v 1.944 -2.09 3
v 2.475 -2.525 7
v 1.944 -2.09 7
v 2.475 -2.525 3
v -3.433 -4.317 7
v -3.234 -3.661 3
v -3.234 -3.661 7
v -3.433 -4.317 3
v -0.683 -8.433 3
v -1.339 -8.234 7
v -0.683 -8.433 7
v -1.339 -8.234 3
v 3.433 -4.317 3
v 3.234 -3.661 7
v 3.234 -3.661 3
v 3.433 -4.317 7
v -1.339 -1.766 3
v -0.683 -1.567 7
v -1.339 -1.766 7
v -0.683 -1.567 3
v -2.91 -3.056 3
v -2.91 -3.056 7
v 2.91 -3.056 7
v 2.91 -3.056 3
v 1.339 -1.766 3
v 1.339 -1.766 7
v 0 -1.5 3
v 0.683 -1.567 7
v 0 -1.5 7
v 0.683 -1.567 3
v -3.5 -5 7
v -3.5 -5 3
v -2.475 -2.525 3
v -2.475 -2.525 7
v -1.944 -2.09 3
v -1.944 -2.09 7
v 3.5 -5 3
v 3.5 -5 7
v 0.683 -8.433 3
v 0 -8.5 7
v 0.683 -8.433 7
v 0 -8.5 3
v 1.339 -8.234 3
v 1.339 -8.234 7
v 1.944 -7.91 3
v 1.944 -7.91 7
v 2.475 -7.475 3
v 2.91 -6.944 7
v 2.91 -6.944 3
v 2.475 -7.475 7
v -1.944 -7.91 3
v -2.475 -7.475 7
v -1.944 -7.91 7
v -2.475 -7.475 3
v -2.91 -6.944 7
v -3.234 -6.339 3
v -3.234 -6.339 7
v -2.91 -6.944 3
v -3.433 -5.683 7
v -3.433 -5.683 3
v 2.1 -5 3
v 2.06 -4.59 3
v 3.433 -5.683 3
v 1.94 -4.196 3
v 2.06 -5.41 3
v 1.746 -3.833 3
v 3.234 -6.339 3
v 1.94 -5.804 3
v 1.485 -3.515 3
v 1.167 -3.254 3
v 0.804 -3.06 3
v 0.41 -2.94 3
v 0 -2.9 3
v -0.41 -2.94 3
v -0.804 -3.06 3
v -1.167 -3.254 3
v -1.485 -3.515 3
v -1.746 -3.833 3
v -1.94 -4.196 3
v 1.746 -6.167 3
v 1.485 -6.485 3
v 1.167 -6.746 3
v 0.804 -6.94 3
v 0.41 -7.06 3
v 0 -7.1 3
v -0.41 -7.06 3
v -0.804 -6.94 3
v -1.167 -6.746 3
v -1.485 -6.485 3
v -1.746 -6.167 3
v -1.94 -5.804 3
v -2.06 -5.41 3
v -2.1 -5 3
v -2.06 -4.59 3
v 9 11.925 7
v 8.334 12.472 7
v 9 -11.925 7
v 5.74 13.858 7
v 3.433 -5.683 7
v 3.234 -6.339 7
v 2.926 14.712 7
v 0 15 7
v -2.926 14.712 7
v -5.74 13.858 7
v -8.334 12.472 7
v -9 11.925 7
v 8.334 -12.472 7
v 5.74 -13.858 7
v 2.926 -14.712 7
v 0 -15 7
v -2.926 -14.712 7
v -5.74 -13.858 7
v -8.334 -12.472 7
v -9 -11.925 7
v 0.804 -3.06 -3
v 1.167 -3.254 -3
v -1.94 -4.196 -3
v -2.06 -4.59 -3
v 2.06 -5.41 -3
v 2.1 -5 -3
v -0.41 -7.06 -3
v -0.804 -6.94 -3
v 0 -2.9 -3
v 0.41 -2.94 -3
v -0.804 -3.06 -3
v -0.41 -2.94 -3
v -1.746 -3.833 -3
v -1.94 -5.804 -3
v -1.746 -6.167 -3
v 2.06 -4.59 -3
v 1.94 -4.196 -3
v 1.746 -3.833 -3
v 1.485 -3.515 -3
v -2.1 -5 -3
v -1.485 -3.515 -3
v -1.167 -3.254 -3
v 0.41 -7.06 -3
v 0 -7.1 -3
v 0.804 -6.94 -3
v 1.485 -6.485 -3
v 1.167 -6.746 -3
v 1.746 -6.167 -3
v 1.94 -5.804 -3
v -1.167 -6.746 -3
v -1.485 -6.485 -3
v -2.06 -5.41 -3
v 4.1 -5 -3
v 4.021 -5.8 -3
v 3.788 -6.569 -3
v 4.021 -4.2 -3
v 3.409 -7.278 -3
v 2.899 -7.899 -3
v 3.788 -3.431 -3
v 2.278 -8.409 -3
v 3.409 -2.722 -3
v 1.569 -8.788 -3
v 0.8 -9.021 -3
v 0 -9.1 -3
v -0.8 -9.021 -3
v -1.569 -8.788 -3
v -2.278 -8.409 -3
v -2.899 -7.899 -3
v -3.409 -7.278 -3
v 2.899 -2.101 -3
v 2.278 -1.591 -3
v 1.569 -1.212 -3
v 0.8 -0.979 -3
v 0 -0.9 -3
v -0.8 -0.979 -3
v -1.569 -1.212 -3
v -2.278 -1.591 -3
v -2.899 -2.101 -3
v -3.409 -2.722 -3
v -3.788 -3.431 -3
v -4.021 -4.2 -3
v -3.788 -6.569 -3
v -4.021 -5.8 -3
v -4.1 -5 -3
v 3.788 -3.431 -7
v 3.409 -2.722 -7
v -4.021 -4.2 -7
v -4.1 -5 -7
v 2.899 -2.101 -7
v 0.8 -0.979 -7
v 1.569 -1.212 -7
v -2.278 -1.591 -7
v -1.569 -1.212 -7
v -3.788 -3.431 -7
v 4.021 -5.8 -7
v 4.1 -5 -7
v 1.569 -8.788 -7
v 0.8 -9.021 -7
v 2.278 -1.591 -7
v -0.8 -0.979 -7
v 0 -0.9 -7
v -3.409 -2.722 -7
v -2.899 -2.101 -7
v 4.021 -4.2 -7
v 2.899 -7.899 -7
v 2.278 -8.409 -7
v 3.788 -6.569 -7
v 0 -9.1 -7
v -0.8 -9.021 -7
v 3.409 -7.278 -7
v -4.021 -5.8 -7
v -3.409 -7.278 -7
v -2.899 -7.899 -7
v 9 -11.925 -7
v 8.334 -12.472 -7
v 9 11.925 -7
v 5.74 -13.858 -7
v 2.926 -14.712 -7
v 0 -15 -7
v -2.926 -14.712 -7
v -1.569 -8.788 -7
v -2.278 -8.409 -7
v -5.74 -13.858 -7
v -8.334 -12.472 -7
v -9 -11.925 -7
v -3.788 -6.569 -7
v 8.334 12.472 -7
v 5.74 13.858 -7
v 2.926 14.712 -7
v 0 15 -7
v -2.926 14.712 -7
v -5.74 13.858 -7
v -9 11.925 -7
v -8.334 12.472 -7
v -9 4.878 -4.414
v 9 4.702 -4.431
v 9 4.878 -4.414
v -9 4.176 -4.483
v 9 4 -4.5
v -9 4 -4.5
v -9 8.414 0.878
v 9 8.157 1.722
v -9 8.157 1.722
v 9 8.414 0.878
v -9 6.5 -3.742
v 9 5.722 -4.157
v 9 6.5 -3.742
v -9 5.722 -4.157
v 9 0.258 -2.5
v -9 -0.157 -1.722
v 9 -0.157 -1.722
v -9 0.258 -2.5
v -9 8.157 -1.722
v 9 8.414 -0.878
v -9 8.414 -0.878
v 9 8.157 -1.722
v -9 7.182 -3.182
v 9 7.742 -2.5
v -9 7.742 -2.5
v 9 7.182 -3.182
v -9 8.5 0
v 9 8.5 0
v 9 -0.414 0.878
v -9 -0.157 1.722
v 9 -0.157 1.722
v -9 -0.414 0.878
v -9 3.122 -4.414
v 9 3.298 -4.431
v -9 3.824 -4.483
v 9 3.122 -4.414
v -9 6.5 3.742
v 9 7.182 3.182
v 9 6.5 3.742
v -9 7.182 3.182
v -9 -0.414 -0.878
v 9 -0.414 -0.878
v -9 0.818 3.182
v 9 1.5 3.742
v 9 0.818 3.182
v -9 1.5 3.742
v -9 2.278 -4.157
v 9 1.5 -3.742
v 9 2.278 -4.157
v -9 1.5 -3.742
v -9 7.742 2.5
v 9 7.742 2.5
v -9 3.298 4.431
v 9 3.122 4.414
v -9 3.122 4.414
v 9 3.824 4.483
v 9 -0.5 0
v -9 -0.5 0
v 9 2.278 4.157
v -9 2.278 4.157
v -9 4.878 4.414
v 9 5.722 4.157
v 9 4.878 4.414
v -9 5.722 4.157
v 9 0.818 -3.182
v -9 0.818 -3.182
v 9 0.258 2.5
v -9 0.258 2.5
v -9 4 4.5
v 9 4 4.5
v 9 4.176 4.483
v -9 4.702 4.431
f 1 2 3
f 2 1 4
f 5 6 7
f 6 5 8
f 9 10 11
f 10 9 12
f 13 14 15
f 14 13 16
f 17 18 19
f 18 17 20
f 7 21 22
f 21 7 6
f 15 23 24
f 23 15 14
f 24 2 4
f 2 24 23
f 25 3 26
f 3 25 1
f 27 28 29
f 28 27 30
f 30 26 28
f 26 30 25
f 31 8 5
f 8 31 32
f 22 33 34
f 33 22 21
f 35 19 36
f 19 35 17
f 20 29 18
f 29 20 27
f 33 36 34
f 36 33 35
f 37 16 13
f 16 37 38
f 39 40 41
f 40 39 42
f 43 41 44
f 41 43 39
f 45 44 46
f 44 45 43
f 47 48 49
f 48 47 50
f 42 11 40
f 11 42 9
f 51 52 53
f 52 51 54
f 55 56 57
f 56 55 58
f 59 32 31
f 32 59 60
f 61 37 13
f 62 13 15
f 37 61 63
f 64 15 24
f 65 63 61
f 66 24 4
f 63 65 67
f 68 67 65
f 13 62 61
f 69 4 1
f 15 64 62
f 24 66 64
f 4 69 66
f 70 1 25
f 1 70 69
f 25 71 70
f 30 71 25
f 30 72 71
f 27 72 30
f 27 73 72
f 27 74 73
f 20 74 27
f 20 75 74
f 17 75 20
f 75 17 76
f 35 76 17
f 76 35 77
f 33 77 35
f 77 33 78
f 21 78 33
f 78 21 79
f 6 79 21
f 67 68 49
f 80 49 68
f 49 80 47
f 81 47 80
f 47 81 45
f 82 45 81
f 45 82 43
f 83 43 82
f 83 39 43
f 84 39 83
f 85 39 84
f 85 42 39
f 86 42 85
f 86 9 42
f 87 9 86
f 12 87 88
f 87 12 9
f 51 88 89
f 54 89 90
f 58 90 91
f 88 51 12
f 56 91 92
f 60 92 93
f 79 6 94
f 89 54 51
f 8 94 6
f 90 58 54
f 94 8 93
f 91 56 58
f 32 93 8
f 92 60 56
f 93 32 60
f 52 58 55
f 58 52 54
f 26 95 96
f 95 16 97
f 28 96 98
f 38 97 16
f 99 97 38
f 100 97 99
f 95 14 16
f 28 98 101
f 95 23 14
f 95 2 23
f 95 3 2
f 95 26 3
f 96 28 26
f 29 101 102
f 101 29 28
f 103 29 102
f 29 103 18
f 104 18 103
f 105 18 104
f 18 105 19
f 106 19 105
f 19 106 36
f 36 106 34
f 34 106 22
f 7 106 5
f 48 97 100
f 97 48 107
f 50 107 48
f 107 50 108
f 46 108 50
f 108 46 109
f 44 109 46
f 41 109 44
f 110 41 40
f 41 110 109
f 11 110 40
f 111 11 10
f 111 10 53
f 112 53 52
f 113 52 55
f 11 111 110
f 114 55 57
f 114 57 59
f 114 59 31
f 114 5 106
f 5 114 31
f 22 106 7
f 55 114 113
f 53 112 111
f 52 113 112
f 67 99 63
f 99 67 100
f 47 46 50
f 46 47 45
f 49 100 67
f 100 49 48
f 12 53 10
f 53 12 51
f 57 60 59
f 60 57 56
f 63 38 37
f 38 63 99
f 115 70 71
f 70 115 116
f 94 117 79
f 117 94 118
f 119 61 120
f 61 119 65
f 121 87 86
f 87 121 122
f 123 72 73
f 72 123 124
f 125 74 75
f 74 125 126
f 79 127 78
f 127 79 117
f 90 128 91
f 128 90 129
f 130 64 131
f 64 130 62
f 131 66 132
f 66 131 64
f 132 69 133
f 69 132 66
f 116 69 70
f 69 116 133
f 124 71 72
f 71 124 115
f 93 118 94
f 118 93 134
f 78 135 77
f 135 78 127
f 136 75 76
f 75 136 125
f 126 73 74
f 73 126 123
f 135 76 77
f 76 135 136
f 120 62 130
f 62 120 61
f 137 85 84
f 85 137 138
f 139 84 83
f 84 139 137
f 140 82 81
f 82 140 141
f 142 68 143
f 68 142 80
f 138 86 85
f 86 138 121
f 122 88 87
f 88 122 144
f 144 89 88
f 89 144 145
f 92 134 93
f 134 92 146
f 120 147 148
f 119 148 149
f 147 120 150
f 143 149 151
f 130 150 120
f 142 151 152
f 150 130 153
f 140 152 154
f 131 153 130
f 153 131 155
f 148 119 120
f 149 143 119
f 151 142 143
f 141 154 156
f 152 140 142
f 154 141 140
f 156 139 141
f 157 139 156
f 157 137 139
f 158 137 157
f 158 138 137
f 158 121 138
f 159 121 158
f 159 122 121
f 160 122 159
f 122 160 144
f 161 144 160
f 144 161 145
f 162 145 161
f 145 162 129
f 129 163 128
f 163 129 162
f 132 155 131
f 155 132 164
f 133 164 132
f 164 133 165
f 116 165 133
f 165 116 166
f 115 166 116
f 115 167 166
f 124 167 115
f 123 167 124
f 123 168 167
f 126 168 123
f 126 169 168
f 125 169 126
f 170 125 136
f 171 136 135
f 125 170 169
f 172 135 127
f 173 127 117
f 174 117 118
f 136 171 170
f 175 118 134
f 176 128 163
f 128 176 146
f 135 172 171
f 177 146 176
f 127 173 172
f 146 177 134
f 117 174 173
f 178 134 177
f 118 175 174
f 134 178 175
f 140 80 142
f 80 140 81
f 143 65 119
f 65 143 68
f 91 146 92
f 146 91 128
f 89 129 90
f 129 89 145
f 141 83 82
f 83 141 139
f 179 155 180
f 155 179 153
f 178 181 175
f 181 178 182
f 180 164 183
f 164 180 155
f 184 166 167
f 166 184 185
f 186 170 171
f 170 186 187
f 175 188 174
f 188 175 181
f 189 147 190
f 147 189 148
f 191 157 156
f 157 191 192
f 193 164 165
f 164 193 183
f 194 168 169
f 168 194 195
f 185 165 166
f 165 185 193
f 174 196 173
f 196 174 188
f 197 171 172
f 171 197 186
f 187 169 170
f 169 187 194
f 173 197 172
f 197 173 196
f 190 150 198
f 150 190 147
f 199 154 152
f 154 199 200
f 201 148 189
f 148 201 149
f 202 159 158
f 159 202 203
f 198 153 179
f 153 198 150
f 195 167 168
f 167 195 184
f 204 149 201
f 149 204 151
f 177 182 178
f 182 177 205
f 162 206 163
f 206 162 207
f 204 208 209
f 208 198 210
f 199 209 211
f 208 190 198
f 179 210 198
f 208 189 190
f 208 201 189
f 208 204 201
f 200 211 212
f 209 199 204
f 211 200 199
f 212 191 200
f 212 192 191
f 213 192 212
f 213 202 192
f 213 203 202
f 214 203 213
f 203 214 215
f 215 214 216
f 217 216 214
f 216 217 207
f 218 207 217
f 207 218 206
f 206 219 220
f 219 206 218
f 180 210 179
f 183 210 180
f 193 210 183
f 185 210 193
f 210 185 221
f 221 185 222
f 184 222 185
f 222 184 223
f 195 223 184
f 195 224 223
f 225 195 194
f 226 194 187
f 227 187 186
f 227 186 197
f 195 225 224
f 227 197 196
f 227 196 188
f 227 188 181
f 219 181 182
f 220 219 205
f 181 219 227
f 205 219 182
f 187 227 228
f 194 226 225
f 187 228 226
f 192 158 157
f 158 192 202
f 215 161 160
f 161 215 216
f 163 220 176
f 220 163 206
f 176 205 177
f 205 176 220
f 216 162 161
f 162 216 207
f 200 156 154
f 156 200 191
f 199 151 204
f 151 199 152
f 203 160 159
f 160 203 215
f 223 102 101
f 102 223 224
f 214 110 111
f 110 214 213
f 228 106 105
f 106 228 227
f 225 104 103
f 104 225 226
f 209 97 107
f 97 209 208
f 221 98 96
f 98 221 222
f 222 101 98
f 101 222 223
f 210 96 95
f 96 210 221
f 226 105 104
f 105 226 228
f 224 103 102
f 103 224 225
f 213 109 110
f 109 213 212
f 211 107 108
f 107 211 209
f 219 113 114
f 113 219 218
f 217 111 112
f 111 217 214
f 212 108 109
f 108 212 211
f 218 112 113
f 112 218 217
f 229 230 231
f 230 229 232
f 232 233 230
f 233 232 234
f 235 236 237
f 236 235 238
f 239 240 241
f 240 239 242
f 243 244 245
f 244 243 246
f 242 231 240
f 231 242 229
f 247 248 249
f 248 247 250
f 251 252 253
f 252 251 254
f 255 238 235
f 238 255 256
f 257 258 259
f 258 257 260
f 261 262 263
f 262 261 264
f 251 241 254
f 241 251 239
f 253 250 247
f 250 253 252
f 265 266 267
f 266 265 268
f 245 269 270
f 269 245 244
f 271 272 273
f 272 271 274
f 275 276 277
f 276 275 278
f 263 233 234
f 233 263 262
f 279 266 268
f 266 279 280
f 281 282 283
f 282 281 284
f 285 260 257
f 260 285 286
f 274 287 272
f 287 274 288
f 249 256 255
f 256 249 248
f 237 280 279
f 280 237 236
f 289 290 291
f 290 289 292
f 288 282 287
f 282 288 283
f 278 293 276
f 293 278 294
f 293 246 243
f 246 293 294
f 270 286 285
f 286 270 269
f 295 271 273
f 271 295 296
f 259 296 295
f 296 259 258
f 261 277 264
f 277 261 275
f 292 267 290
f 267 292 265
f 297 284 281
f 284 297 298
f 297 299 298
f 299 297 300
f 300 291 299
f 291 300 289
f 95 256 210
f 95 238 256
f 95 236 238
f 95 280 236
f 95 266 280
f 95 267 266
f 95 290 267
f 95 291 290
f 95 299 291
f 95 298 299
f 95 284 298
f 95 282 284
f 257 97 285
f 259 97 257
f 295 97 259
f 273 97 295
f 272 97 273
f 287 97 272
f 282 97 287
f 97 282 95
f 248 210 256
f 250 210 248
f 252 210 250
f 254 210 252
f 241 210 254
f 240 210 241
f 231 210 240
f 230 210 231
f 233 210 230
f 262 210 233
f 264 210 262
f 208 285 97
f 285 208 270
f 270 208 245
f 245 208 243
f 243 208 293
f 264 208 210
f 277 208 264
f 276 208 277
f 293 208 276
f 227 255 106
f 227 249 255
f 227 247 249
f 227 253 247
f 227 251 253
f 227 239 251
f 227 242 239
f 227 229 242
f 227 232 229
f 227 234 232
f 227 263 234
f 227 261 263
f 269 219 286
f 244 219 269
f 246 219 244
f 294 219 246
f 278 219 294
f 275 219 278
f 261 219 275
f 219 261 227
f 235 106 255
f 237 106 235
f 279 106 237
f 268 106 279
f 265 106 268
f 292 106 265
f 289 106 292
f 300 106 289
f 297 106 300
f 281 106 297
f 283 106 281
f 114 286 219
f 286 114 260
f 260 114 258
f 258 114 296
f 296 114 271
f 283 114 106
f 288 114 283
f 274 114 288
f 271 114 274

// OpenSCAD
//6mm plate
//9mm rod

$fn=32;

rod_radius = 9 / 2;
z_rod_radius = 4.1;
screw_radius = 2.1;
screw_head_radius= 3.5;
bracket_radius = 30 / 2;
bracket_z = 14;


bracket();

module bracket(){
  difference(){
    cylinder(r=bracket_radius, h=bracket_z, center=true);
    translate([0,-5,0])
      screw_hole();   
    translate([0,4,0])
      rotate([0,90,0]) rod();

    translate([12,4,0])
      cube([6,40,bracket_z], center=true);
    translate([-12,4,0])
      cube([6,40,bracket_z], center=true);

  }
}

module screw_hole(){
  translate([0,0,2+3])
    cylinder(r=screw_head_radius, h=4, center=true);
  translate([0,0,0])
    cylinder(r=screw_radius, h=6, center=true);
  translate([0,0,-5])
    cylinder(r=z_rod_radius, h=4, center=true);
}

module rod(){
  cylinder(r=rod_radius, h=30, center=true);
}
